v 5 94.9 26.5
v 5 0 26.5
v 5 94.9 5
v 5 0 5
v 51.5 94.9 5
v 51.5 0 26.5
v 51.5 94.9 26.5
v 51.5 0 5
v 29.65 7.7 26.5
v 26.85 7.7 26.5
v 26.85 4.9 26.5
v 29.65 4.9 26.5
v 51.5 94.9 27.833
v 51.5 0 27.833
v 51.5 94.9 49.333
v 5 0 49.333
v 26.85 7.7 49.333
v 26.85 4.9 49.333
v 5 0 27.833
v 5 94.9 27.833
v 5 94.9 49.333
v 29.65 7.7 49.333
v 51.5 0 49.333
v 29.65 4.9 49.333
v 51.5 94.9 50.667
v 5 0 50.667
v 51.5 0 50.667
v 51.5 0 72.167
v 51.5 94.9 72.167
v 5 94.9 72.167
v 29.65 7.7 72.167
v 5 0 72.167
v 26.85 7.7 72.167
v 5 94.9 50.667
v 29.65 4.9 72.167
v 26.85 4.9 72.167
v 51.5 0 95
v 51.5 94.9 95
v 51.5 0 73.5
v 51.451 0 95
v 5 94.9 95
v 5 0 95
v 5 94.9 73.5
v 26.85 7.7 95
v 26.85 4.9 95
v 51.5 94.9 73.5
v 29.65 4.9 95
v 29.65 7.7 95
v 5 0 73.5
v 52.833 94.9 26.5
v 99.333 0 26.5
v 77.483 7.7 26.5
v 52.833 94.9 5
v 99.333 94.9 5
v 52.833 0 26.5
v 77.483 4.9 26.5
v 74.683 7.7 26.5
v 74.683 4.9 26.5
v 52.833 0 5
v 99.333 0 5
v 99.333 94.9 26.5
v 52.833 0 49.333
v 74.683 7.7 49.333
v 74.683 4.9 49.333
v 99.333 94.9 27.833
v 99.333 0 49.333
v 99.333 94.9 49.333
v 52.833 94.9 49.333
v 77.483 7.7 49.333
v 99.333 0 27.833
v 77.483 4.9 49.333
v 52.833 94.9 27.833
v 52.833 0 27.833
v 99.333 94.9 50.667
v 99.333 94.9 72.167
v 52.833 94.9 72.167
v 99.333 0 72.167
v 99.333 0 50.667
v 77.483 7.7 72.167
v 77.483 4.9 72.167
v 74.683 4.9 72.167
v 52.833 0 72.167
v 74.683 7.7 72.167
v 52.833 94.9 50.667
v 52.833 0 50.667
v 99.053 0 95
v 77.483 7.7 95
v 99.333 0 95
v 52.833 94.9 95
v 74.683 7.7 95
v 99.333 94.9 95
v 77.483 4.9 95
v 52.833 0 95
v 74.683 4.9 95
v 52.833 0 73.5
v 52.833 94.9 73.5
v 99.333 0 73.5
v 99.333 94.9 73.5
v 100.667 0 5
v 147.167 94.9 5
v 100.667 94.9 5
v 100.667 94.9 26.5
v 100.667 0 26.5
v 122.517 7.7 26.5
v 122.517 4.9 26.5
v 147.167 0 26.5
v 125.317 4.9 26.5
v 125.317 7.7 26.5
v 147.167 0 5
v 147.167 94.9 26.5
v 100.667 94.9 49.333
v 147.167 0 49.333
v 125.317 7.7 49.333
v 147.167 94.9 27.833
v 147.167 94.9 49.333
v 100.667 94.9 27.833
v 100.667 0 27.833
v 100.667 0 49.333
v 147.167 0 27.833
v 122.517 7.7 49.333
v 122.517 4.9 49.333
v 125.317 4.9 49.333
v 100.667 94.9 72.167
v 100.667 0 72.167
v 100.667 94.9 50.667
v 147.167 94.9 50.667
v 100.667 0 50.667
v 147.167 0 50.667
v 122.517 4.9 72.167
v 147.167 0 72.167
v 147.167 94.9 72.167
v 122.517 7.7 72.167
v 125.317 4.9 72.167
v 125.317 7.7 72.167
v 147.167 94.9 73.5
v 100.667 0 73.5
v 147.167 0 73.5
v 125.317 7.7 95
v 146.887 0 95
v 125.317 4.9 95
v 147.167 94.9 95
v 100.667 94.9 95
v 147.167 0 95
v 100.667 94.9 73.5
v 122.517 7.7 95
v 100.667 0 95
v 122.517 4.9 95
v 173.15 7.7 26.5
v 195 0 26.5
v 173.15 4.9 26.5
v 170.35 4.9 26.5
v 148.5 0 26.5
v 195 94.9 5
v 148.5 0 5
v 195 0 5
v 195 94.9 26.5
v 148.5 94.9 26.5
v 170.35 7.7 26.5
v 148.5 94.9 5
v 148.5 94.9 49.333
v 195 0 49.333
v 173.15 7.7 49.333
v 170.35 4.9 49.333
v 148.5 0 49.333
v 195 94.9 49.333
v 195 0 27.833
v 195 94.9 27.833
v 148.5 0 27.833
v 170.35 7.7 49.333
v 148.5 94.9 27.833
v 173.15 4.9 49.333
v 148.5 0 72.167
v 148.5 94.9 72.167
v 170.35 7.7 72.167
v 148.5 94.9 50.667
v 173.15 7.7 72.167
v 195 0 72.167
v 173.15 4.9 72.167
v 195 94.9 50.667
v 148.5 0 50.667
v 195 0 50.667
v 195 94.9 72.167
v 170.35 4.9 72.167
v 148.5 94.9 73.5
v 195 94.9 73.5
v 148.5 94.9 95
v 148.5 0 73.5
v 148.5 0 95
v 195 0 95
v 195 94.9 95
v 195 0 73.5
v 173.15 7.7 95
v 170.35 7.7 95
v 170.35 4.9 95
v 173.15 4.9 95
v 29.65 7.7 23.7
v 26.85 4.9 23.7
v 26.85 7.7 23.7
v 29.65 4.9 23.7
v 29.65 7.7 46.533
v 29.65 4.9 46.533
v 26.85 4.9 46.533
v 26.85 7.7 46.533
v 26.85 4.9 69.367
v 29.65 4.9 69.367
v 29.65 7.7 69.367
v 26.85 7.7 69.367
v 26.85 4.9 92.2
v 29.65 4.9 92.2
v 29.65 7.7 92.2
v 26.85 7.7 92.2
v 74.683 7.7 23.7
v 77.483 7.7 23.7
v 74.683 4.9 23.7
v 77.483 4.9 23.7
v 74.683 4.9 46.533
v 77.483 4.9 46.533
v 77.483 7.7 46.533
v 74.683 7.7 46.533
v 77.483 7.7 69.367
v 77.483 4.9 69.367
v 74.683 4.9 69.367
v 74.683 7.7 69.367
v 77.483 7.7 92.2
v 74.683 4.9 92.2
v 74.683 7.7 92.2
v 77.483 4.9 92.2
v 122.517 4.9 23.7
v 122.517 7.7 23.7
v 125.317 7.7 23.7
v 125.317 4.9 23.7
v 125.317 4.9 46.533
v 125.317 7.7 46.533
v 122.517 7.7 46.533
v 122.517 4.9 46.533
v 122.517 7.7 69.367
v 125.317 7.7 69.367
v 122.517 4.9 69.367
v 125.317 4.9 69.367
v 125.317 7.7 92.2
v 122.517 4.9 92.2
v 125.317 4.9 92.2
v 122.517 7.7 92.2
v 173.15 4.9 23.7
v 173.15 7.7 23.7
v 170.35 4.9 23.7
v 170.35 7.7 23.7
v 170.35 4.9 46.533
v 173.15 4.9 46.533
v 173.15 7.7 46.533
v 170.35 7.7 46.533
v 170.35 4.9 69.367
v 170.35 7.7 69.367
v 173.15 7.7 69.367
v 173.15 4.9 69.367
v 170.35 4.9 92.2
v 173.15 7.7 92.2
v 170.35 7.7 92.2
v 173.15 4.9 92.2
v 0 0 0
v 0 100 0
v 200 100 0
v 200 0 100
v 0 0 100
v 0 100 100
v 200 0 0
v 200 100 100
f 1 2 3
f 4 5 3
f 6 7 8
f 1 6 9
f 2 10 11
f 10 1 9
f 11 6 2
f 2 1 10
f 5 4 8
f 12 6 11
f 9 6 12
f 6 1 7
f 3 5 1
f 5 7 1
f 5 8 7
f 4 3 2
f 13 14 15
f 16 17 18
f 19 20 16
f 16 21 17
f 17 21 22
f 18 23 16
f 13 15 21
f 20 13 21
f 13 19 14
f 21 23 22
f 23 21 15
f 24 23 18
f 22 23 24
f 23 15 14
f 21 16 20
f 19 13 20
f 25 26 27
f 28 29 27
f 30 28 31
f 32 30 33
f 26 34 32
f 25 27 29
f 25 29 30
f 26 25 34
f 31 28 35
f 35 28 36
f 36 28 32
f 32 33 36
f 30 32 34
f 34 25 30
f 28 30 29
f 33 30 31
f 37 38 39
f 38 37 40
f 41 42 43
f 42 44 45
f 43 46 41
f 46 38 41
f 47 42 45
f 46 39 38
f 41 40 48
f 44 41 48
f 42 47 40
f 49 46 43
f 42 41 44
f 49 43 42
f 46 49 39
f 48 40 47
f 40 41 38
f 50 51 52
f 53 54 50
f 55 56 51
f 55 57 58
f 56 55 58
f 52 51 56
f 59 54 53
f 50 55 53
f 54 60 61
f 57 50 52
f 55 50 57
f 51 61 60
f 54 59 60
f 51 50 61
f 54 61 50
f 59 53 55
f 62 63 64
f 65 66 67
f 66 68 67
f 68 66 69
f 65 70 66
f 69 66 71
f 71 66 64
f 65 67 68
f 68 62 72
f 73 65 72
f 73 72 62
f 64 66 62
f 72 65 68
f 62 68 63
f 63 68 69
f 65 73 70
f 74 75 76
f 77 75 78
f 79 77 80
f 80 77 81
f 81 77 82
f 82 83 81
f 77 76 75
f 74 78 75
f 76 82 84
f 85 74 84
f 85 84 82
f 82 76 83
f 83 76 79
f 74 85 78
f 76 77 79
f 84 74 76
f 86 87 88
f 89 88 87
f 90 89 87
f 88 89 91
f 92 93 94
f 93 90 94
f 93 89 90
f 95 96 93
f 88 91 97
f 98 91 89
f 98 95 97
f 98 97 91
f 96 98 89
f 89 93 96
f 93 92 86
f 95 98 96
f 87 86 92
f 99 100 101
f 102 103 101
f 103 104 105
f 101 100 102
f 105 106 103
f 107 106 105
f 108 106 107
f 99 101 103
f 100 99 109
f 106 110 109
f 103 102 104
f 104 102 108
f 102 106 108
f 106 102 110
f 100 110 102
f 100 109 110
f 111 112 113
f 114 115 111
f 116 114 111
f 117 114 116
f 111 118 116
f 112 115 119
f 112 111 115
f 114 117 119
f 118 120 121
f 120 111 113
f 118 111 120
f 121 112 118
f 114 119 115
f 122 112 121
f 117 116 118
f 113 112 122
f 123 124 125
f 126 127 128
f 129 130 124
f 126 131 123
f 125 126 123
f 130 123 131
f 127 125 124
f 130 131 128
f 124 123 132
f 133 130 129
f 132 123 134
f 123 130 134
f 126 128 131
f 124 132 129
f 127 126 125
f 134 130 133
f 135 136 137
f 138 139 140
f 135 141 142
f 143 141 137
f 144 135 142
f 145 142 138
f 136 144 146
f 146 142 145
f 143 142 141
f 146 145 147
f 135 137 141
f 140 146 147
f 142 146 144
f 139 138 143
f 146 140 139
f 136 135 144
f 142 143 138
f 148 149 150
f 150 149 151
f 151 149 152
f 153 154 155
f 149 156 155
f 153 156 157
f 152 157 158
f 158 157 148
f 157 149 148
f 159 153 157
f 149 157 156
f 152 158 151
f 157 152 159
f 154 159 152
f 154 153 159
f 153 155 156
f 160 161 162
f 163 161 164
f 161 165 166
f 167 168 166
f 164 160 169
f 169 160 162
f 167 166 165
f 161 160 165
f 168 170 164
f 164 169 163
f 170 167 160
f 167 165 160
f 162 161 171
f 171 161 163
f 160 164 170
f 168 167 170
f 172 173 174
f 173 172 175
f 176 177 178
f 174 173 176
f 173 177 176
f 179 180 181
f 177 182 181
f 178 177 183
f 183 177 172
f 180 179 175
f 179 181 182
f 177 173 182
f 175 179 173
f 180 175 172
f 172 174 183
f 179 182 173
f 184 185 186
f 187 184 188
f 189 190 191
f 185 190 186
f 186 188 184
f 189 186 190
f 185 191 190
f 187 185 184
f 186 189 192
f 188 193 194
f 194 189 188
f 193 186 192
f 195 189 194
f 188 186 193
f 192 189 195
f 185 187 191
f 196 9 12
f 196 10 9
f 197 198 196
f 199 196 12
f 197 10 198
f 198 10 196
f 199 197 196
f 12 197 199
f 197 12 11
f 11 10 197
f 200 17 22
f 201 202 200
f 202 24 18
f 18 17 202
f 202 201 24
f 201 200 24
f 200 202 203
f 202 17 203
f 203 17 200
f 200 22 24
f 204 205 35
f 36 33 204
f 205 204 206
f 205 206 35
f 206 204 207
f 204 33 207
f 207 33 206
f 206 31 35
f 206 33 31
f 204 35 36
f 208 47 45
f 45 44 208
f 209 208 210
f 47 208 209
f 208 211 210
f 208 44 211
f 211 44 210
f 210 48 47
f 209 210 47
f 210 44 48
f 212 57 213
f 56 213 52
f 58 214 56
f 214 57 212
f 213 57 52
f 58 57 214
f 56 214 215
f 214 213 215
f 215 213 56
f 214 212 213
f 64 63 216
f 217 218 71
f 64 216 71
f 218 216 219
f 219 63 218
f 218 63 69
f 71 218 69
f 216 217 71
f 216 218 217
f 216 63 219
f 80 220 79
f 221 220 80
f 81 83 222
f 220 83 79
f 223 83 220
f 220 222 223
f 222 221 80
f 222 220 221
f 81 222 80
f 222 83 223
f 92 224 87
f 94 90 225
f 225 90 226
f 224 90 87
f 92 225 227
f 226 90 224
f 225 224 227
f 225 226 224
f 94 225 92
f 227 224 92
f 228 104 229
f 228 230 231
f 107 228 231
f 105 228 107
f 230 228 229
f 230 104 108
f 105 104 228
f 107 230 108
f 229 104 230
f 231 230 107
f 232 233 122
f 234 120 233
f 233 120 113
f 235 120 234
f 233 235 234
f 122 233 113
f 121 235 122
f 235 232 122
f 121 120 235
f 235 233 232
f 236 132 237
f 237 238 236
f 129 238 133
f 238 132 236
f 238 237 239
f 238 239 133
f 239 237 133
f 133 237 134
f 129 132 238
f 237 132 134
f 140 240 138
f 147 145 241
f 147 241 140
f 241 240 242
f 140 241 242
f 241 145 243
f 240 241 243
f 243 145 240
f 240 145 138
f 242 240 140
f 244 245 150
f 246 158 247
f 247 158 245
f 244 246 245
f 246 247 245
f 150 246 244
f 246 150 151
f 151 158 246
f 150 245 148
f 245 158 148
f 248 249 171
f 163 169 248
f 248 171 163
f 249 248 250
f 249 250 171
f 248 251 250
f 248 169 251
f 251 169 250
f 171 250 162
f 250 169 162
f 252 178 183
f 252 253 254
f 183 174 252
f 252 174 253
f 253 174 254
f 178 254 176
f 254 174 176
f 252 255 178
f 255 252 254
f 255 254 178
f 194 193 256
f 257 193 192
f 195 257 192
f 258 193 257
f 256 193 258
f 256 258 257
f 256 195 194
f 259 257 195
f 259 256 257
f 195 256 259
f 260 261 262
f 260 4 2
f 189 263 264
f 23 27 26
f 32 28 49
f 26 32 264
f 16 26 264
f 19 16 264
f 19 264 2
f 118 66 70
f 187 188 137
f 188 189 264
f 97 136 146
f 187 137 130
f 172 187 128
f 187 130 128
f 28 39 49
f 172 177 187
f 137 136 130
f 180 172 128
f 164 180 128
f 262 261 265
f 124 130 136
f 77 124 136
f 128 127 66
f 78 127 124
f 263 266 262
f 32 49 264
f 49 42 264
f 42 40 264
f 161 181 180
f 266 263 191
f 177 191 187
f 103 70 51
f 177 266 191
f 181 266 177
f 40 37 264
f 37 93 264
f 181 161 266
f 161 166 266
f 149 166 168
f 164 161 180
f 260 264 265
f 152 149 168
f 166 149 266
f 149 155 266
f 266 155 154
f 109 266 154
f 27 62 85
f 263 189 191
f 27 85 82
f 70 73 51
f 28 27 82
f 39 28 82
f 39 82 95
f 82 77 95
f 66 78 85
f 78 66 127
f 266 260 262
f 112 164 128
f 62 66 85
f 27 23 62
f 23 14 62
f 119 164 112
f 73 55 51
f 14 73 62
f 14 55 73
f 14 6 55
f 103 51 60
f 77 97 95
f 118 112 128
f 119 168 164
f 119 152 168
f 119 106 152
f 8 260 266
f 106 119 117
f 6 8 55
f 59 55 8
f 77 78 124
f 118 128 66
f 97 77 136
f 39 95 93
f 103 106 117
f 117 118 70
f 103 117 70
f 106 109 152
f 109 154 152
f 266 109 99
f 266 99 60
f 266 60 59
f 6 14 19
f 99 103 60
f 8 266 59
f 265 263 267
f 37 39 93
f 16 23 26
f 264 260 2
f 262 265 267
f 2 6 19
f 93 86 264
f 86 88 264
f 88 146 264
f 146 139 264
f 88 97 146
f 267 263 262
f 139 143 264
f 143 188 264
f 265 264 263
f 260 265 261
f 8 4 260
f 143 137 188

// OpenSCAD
// file: vendors/UtilitySCAD-R1/utility.scad
/*This library, part of UtilitySCAD, is placed into the public domain by NMR_Scientist.

Version: R1
Title: UtilitySCAD
Description: Miscellaneous utility modules I developed over the course of several projects to reuse common operations that were seen over various models.

History:
* ??/??/2024 - R1 - First release to be with a model whenever it is released.
*/

$fa = 1;
$fs = 0.1;

use <MCAD/regular_shapes.scad>;

//Move objects in the x-axis.
module move_x (x)
{
    translate([x,0,0])
    {
        children();
    }
}

//Move objects in the y-axis
module move_y (y)
{
    translate([0,y,0])
    {
        children();
    }
}

//Move objects in the z-ax
module move_z (z)
{
    translate([0,0,z])
    {
        children();
    }
}

//Move objects by a given point in all direction. -1 would means moving to the left, moving back, and moving down by one point.
module move_by(point)
{
    translate([point,point,point])
    {
        children();
    }
}

//Exactly like move_by, but a negation. Named for its very common use in adding tolerance to objects.
module move_by_margin(m)
{
    move_by(-m)
    {
        children();
    }
}

//A cylinder rotated to its side.
module hor_cylinder(width,r,r)
{
    move_y(r)
        move_z(r)
            rotate([0,90,0])
            {
                cylinder(width,r,r);
            }
}

module hor_cylinder_y(length,r)
{
    translate([r * 2,0,0])
    {
        rotate([0,0,90])
        {
            hor_cylinder(length,r);
        }
    }
}


//Cut a object at a given height and then move that object down, usually to zero if the object was placed at zero height.
module hor_cut(width,length,height)
{
    translate([0,0,-height])
    {
        difference()
        {
            children();
            translate([-1,-1,-1])
            {
                cube([width + 2,length + 2,height + 1]);
            }
        }
    }
}

function bevel_radius(length) = length * 2 / 3;
function bevel_height(r) = r * sqrt(3)/2;

//Bevel at 45 degree slope up, facing back, then extrude upward by height.
module bevel_up_back_45(width,length,height)
{
    r = bevel_radius(length);
    z = bevel_height(r);
    m = 0.1;
    m_2 = m * 2;
    difference()
    {
        translate([0,r / 2,z])
        {
            rotate([0,90,0])
            {
                triangle_prism(width,r);
            }
        }
        // Cut off to the required height.
        move_x(-m)
            move_y(-m)
                move_z(height)
                   cube([width + m,length + m,z * 2 - height]);
    }
    //If cutting off isn't happening simply add height.
    if (height >= z)
    {
        move_z(z)
        {
            cube([width,length,height - z]);
        }
    }
}

module bevel_up_front_45(width,length,height)
{
    r = bevel_radius(length);
    z = bevel_height(r);
    m = 0.1;
    m_2 = m * 2;
    difference()
    {
        translate([width,r,z])
        {
            rotate([0,90,180])
            {
                triangle_prism(width,r);
            }
        }
        // Cut off to the required height.
        move_x(-m)
            move_y(-m)
                move_z(height)
                   cube([width + m,length + m,z * 2 - height]);
    }
    //If cutting off isn't happening simply add height.
    if (height >= z)
    {
        move_z(z)
        {
            cube([width,length,height - z]);
        }
    }
}

module center_z(centering_z,target_z)
{
    z = (target_z - centering_z) / 2;
    translate([0,0,z])
    {
        children();
    }
}

module center_y(centering_y,target_y)
{
    y = (target_y - centering_y) / 2;
    translate([0,y,0])
    {
        children();
    }
}

//Center an object against a particular width of another object.
module center(centering_w,target_w)
{
    x = (target_w - centering_w) / 2;
    translate([x,0,0])
    {
        children();
    }
}

//Move object to a certain value of x, but also account for the object size, such that the object is place before the point x. For a postive value of x, that is before the x, for a negative value of x, that is next to x. Useful for dimensional accurate placement.
module move_object_x(x,r)
{
    diameter = r * 2;
    if (abs(x) < diameter)
    {
        echo("Cannot move!");
    }
    else
    {
        if (x > 0)
        {
            move_x(x - diameter)
            {
                children();
            }
        }
        else if (x < 0)
        {
            move_x(x + diameter)
                children();
        }
    }
}


//Move object to a certain value of z, but also account for the object size, such that the object is place before the point z. For a postive value of z, that is below of z, for a negative value of z, that is above z. Useful for dimensional accurate placement.
module move_object_z(z, r)
{
    diameter = r * 2;
    if (abs(z) < diameter)
    {
        echo("Cannot move!");
    }
    else
    {
        if (z > 0)
        {
            move_z(z - diameter)
            {
                children();
            }
        }
        else if (z < 0)
        {
            move_z(z + diameter)
                children();
        }
    }
}


//Generaate all notches in a castellation at the same time, and space each notch for the length of the notch.
module notches(n, multipler)
{
    for (x = [1:n])
    {
        final_x = (x - 1) * multipler;
        move_x(final_x)
        {
            if ((x - 1) % 2 == 0)
            {
               children();
            }
        }
    }
}

//Get the total width of the Castellation, starting with the first and last notches.
function CastellateTotalW(w,size) = (w - 1) % 2 == 1 ? (w - 1) * size.x : w * size.x;


//Center the resulting castellation of a certain cuboid size.
module castellate(width,size, m = 0)
{
    total_notches = floor(width / size.x);
    total_w = CastellateTotalW(total_notches,size);
    center(total_w,width)
    {
        notches(total_notches,size.x)
        {
            move_x(m)
            {
                shrink = [size.x - (m * 2),size.y,size.z];
                cube(shrink);
            }
        }
    }

}
// file: small_box.scad
$fa = 1;
$fs = 0.1;
use <vendors/UtilitySCAD-R1/utility.scad>;

function divide_by_y(target_l,center_l,times) = (target_l - center_l * (times - 1)) / times;

module hulling(inside_w,r,z,thickness)
{
    hor_cylinder(inside_w,r);
    translate([0,0,z - thickness - (r * 2)])
    {
        hor_cylinder(inside_w,r);
    }
}
module small_box(width,length,height,m = 0,print = "box",div=1)
{
    thickness = 5;
    side_thickness = 2;
    cut = 0.1;
    m_2 = m * 2;
    w = width - m_2;
    l = length - m_2;
    z = height - m_2;
    handle_w = 10;
    handle_h = 5;
    handle_l = 2;
    total_h = (z - handle_h) / 2 - 2;
    if (print == "box")
    {
        difference()
        {
            cube([w,l,z]);
            //Make the middle part height 3 mm lower. Helps make it easier to fit the drawers into the shipping container.
            translate([-cut,thickness,z - 3])
            {
                cube([w + (cut * 2),l - (thickness * 2),4]);
            }
            //inside volume
        
            translate([side_thickness + m,thickness,thickness])
            {
                r = 3;
                r_2 = r * 2;
                thickness_2 = thickness * 2;
                inside_w = w - (side_thickness * 2) - m;
                inside_l = l - thickness_2;
                wall = 2;
                divider_l = divide_by_y(inside_l,wall,div);
                for(i=[0:1:div - 1])
                {
                    hull()
                    {
                        translate([0,(divider_l + wall) * i,0])
                        {
                            hulling(inside_w,r,z,thickness);
                            translate([0,divider_l - r_2,0])
                            {
                                hulling(inside_w,r,z,thickness);

                            }
                        }
                    }
                }
            }
            translate([-cut,l - 3,-cut])
            {
                cube([w + (cut * 2),3 + cut,3 + cut]);
            }
            translate([1,-cut,1])
            {
                difference()
                {
                    cube([w - 2,2 + cut,total_h]);
                }
            }
            center_z(handle_h,z)
            {
                center(handle_w,w)
                {
                    handle(handle_w,handle_l,handle_h);
                        
                }
                
            }
        }
    }
    if (print == "nameplate")
    {
        translate([w + 1,0,0])
        {
            cube([w - 2 - m_2,total_h - m_2,2]);
        }
    }

}

module solid_cube(width,length,height)
{
    cube([width,length,height]);
}

small_box(40,100,25,0.1);

module handle(w,l,h)
{
    translate([0,0,0])
    {
        rotate([90,0,90])
        {
            linear_extrude(w)
            {
              polygon(points=[[0,0],[l,0],[0,h]],paths=[[0,1,2]]);
            }
        }
        translate([0,l - 1,-0.9])
        {
            cube([w,1,1]);
        }
        translate([0,-0.9,0])
        {
            cube([w,1,h]);
        }
    }
}
// main file
use <small_box.scad>;
use <vendors/UtilitySCAD-R1/utility.scad>;

width = 200;
length = 100;
height = 100;
thickness = 5;
thickness_2 = thickness * 2;
resistor_w = 70;
m = 0.2;

module endstop()
{
    cube([3 - m,3 - m,3 - m]);
}

module place_endstops(h)
{
   // endstop();
    move_z(h - 3 + m)
    {
        endstop();

    }
}

module divide_container()
{
    h_division = 4;
    v_division = 4;
    wall = 1;
    spacing = wall / h_division;
    x_multiply = (width - 10) / h_division;
    box_w = (width - 10) / h_division;
    cut = 0.1;
    mini_h = (height - thickness_2)/ v_division;
    difference()
    {
        cube([width,length,height]);
        for (i = [0:1:h_division - 1])
        {
            start_x = 5 + i * (x_multiply + (wall / (h_division - 1)));
            for (z = [0:1:v_division - 1])
            {
                start_z = 5 + z * (mini_h + wall / (v_division - 1));
                translate([start_x,-cut,start_z])
                {
                    cut_box(box_w - wall,length - 5,mini_h - wall);
                }
            }
        }
    }
//    difference()
//    {
//        cube([box_w + 3, 3,mini_h + 3]);
//        translate([1,-1,1])
//        {
//            cut_box(box_w - wall, 4, mini_h - wall);
//        }
//    }
    echo("width")
    echo(box_w - wall);
    echo(length - 5);
    echo(mini_h - wall);
    move_x(210)
    {
       // small_box(box_w - wall, length - 5, mini_h - wall, 0.1);
    }
}

divide_container();

module cut_box(box_w,box_l,box_h)
{
    difference()
    {
        solid_cube(box_w,box_l,box_h);
        center(3 - m,box_w)
        {
            translate([0,5,0])
            {
                place_endstops(box_h);
            }
        }
    }
}

module generate_to_fit()
{
    
    into_c = (width - 10) / resistor_w;
    cutoff = floor(into_c);
    wall = 2;
    m = 0.2;
    difference()
    {
        cube([width,length,height]);
        cut = 0.1;

        for(w = [0:1:cutoff - 1])
        {
            increase = (resistor_w + wall) * w + thickness;
            translate([increase,-cut,thickness])
            {
                cut_box(resistor_w,length - thickness,height - thickness_2);
            }
        }
        leftover = thickness + (wall * cutoff) + (resistor_w * cutoff);
        end = width - thickness - leftover;
        reps = 2;
        mini_h = (height - thickness_2 - wall) / reps;
        for (i = [0:1:reps - 1])
        {
            translate([leftover,-cut,thickness + ((mini_h + wall) * i)])
            {
                cut_box(end,length - thickness,mini_h);
            }
        }
        
    }
    
}
